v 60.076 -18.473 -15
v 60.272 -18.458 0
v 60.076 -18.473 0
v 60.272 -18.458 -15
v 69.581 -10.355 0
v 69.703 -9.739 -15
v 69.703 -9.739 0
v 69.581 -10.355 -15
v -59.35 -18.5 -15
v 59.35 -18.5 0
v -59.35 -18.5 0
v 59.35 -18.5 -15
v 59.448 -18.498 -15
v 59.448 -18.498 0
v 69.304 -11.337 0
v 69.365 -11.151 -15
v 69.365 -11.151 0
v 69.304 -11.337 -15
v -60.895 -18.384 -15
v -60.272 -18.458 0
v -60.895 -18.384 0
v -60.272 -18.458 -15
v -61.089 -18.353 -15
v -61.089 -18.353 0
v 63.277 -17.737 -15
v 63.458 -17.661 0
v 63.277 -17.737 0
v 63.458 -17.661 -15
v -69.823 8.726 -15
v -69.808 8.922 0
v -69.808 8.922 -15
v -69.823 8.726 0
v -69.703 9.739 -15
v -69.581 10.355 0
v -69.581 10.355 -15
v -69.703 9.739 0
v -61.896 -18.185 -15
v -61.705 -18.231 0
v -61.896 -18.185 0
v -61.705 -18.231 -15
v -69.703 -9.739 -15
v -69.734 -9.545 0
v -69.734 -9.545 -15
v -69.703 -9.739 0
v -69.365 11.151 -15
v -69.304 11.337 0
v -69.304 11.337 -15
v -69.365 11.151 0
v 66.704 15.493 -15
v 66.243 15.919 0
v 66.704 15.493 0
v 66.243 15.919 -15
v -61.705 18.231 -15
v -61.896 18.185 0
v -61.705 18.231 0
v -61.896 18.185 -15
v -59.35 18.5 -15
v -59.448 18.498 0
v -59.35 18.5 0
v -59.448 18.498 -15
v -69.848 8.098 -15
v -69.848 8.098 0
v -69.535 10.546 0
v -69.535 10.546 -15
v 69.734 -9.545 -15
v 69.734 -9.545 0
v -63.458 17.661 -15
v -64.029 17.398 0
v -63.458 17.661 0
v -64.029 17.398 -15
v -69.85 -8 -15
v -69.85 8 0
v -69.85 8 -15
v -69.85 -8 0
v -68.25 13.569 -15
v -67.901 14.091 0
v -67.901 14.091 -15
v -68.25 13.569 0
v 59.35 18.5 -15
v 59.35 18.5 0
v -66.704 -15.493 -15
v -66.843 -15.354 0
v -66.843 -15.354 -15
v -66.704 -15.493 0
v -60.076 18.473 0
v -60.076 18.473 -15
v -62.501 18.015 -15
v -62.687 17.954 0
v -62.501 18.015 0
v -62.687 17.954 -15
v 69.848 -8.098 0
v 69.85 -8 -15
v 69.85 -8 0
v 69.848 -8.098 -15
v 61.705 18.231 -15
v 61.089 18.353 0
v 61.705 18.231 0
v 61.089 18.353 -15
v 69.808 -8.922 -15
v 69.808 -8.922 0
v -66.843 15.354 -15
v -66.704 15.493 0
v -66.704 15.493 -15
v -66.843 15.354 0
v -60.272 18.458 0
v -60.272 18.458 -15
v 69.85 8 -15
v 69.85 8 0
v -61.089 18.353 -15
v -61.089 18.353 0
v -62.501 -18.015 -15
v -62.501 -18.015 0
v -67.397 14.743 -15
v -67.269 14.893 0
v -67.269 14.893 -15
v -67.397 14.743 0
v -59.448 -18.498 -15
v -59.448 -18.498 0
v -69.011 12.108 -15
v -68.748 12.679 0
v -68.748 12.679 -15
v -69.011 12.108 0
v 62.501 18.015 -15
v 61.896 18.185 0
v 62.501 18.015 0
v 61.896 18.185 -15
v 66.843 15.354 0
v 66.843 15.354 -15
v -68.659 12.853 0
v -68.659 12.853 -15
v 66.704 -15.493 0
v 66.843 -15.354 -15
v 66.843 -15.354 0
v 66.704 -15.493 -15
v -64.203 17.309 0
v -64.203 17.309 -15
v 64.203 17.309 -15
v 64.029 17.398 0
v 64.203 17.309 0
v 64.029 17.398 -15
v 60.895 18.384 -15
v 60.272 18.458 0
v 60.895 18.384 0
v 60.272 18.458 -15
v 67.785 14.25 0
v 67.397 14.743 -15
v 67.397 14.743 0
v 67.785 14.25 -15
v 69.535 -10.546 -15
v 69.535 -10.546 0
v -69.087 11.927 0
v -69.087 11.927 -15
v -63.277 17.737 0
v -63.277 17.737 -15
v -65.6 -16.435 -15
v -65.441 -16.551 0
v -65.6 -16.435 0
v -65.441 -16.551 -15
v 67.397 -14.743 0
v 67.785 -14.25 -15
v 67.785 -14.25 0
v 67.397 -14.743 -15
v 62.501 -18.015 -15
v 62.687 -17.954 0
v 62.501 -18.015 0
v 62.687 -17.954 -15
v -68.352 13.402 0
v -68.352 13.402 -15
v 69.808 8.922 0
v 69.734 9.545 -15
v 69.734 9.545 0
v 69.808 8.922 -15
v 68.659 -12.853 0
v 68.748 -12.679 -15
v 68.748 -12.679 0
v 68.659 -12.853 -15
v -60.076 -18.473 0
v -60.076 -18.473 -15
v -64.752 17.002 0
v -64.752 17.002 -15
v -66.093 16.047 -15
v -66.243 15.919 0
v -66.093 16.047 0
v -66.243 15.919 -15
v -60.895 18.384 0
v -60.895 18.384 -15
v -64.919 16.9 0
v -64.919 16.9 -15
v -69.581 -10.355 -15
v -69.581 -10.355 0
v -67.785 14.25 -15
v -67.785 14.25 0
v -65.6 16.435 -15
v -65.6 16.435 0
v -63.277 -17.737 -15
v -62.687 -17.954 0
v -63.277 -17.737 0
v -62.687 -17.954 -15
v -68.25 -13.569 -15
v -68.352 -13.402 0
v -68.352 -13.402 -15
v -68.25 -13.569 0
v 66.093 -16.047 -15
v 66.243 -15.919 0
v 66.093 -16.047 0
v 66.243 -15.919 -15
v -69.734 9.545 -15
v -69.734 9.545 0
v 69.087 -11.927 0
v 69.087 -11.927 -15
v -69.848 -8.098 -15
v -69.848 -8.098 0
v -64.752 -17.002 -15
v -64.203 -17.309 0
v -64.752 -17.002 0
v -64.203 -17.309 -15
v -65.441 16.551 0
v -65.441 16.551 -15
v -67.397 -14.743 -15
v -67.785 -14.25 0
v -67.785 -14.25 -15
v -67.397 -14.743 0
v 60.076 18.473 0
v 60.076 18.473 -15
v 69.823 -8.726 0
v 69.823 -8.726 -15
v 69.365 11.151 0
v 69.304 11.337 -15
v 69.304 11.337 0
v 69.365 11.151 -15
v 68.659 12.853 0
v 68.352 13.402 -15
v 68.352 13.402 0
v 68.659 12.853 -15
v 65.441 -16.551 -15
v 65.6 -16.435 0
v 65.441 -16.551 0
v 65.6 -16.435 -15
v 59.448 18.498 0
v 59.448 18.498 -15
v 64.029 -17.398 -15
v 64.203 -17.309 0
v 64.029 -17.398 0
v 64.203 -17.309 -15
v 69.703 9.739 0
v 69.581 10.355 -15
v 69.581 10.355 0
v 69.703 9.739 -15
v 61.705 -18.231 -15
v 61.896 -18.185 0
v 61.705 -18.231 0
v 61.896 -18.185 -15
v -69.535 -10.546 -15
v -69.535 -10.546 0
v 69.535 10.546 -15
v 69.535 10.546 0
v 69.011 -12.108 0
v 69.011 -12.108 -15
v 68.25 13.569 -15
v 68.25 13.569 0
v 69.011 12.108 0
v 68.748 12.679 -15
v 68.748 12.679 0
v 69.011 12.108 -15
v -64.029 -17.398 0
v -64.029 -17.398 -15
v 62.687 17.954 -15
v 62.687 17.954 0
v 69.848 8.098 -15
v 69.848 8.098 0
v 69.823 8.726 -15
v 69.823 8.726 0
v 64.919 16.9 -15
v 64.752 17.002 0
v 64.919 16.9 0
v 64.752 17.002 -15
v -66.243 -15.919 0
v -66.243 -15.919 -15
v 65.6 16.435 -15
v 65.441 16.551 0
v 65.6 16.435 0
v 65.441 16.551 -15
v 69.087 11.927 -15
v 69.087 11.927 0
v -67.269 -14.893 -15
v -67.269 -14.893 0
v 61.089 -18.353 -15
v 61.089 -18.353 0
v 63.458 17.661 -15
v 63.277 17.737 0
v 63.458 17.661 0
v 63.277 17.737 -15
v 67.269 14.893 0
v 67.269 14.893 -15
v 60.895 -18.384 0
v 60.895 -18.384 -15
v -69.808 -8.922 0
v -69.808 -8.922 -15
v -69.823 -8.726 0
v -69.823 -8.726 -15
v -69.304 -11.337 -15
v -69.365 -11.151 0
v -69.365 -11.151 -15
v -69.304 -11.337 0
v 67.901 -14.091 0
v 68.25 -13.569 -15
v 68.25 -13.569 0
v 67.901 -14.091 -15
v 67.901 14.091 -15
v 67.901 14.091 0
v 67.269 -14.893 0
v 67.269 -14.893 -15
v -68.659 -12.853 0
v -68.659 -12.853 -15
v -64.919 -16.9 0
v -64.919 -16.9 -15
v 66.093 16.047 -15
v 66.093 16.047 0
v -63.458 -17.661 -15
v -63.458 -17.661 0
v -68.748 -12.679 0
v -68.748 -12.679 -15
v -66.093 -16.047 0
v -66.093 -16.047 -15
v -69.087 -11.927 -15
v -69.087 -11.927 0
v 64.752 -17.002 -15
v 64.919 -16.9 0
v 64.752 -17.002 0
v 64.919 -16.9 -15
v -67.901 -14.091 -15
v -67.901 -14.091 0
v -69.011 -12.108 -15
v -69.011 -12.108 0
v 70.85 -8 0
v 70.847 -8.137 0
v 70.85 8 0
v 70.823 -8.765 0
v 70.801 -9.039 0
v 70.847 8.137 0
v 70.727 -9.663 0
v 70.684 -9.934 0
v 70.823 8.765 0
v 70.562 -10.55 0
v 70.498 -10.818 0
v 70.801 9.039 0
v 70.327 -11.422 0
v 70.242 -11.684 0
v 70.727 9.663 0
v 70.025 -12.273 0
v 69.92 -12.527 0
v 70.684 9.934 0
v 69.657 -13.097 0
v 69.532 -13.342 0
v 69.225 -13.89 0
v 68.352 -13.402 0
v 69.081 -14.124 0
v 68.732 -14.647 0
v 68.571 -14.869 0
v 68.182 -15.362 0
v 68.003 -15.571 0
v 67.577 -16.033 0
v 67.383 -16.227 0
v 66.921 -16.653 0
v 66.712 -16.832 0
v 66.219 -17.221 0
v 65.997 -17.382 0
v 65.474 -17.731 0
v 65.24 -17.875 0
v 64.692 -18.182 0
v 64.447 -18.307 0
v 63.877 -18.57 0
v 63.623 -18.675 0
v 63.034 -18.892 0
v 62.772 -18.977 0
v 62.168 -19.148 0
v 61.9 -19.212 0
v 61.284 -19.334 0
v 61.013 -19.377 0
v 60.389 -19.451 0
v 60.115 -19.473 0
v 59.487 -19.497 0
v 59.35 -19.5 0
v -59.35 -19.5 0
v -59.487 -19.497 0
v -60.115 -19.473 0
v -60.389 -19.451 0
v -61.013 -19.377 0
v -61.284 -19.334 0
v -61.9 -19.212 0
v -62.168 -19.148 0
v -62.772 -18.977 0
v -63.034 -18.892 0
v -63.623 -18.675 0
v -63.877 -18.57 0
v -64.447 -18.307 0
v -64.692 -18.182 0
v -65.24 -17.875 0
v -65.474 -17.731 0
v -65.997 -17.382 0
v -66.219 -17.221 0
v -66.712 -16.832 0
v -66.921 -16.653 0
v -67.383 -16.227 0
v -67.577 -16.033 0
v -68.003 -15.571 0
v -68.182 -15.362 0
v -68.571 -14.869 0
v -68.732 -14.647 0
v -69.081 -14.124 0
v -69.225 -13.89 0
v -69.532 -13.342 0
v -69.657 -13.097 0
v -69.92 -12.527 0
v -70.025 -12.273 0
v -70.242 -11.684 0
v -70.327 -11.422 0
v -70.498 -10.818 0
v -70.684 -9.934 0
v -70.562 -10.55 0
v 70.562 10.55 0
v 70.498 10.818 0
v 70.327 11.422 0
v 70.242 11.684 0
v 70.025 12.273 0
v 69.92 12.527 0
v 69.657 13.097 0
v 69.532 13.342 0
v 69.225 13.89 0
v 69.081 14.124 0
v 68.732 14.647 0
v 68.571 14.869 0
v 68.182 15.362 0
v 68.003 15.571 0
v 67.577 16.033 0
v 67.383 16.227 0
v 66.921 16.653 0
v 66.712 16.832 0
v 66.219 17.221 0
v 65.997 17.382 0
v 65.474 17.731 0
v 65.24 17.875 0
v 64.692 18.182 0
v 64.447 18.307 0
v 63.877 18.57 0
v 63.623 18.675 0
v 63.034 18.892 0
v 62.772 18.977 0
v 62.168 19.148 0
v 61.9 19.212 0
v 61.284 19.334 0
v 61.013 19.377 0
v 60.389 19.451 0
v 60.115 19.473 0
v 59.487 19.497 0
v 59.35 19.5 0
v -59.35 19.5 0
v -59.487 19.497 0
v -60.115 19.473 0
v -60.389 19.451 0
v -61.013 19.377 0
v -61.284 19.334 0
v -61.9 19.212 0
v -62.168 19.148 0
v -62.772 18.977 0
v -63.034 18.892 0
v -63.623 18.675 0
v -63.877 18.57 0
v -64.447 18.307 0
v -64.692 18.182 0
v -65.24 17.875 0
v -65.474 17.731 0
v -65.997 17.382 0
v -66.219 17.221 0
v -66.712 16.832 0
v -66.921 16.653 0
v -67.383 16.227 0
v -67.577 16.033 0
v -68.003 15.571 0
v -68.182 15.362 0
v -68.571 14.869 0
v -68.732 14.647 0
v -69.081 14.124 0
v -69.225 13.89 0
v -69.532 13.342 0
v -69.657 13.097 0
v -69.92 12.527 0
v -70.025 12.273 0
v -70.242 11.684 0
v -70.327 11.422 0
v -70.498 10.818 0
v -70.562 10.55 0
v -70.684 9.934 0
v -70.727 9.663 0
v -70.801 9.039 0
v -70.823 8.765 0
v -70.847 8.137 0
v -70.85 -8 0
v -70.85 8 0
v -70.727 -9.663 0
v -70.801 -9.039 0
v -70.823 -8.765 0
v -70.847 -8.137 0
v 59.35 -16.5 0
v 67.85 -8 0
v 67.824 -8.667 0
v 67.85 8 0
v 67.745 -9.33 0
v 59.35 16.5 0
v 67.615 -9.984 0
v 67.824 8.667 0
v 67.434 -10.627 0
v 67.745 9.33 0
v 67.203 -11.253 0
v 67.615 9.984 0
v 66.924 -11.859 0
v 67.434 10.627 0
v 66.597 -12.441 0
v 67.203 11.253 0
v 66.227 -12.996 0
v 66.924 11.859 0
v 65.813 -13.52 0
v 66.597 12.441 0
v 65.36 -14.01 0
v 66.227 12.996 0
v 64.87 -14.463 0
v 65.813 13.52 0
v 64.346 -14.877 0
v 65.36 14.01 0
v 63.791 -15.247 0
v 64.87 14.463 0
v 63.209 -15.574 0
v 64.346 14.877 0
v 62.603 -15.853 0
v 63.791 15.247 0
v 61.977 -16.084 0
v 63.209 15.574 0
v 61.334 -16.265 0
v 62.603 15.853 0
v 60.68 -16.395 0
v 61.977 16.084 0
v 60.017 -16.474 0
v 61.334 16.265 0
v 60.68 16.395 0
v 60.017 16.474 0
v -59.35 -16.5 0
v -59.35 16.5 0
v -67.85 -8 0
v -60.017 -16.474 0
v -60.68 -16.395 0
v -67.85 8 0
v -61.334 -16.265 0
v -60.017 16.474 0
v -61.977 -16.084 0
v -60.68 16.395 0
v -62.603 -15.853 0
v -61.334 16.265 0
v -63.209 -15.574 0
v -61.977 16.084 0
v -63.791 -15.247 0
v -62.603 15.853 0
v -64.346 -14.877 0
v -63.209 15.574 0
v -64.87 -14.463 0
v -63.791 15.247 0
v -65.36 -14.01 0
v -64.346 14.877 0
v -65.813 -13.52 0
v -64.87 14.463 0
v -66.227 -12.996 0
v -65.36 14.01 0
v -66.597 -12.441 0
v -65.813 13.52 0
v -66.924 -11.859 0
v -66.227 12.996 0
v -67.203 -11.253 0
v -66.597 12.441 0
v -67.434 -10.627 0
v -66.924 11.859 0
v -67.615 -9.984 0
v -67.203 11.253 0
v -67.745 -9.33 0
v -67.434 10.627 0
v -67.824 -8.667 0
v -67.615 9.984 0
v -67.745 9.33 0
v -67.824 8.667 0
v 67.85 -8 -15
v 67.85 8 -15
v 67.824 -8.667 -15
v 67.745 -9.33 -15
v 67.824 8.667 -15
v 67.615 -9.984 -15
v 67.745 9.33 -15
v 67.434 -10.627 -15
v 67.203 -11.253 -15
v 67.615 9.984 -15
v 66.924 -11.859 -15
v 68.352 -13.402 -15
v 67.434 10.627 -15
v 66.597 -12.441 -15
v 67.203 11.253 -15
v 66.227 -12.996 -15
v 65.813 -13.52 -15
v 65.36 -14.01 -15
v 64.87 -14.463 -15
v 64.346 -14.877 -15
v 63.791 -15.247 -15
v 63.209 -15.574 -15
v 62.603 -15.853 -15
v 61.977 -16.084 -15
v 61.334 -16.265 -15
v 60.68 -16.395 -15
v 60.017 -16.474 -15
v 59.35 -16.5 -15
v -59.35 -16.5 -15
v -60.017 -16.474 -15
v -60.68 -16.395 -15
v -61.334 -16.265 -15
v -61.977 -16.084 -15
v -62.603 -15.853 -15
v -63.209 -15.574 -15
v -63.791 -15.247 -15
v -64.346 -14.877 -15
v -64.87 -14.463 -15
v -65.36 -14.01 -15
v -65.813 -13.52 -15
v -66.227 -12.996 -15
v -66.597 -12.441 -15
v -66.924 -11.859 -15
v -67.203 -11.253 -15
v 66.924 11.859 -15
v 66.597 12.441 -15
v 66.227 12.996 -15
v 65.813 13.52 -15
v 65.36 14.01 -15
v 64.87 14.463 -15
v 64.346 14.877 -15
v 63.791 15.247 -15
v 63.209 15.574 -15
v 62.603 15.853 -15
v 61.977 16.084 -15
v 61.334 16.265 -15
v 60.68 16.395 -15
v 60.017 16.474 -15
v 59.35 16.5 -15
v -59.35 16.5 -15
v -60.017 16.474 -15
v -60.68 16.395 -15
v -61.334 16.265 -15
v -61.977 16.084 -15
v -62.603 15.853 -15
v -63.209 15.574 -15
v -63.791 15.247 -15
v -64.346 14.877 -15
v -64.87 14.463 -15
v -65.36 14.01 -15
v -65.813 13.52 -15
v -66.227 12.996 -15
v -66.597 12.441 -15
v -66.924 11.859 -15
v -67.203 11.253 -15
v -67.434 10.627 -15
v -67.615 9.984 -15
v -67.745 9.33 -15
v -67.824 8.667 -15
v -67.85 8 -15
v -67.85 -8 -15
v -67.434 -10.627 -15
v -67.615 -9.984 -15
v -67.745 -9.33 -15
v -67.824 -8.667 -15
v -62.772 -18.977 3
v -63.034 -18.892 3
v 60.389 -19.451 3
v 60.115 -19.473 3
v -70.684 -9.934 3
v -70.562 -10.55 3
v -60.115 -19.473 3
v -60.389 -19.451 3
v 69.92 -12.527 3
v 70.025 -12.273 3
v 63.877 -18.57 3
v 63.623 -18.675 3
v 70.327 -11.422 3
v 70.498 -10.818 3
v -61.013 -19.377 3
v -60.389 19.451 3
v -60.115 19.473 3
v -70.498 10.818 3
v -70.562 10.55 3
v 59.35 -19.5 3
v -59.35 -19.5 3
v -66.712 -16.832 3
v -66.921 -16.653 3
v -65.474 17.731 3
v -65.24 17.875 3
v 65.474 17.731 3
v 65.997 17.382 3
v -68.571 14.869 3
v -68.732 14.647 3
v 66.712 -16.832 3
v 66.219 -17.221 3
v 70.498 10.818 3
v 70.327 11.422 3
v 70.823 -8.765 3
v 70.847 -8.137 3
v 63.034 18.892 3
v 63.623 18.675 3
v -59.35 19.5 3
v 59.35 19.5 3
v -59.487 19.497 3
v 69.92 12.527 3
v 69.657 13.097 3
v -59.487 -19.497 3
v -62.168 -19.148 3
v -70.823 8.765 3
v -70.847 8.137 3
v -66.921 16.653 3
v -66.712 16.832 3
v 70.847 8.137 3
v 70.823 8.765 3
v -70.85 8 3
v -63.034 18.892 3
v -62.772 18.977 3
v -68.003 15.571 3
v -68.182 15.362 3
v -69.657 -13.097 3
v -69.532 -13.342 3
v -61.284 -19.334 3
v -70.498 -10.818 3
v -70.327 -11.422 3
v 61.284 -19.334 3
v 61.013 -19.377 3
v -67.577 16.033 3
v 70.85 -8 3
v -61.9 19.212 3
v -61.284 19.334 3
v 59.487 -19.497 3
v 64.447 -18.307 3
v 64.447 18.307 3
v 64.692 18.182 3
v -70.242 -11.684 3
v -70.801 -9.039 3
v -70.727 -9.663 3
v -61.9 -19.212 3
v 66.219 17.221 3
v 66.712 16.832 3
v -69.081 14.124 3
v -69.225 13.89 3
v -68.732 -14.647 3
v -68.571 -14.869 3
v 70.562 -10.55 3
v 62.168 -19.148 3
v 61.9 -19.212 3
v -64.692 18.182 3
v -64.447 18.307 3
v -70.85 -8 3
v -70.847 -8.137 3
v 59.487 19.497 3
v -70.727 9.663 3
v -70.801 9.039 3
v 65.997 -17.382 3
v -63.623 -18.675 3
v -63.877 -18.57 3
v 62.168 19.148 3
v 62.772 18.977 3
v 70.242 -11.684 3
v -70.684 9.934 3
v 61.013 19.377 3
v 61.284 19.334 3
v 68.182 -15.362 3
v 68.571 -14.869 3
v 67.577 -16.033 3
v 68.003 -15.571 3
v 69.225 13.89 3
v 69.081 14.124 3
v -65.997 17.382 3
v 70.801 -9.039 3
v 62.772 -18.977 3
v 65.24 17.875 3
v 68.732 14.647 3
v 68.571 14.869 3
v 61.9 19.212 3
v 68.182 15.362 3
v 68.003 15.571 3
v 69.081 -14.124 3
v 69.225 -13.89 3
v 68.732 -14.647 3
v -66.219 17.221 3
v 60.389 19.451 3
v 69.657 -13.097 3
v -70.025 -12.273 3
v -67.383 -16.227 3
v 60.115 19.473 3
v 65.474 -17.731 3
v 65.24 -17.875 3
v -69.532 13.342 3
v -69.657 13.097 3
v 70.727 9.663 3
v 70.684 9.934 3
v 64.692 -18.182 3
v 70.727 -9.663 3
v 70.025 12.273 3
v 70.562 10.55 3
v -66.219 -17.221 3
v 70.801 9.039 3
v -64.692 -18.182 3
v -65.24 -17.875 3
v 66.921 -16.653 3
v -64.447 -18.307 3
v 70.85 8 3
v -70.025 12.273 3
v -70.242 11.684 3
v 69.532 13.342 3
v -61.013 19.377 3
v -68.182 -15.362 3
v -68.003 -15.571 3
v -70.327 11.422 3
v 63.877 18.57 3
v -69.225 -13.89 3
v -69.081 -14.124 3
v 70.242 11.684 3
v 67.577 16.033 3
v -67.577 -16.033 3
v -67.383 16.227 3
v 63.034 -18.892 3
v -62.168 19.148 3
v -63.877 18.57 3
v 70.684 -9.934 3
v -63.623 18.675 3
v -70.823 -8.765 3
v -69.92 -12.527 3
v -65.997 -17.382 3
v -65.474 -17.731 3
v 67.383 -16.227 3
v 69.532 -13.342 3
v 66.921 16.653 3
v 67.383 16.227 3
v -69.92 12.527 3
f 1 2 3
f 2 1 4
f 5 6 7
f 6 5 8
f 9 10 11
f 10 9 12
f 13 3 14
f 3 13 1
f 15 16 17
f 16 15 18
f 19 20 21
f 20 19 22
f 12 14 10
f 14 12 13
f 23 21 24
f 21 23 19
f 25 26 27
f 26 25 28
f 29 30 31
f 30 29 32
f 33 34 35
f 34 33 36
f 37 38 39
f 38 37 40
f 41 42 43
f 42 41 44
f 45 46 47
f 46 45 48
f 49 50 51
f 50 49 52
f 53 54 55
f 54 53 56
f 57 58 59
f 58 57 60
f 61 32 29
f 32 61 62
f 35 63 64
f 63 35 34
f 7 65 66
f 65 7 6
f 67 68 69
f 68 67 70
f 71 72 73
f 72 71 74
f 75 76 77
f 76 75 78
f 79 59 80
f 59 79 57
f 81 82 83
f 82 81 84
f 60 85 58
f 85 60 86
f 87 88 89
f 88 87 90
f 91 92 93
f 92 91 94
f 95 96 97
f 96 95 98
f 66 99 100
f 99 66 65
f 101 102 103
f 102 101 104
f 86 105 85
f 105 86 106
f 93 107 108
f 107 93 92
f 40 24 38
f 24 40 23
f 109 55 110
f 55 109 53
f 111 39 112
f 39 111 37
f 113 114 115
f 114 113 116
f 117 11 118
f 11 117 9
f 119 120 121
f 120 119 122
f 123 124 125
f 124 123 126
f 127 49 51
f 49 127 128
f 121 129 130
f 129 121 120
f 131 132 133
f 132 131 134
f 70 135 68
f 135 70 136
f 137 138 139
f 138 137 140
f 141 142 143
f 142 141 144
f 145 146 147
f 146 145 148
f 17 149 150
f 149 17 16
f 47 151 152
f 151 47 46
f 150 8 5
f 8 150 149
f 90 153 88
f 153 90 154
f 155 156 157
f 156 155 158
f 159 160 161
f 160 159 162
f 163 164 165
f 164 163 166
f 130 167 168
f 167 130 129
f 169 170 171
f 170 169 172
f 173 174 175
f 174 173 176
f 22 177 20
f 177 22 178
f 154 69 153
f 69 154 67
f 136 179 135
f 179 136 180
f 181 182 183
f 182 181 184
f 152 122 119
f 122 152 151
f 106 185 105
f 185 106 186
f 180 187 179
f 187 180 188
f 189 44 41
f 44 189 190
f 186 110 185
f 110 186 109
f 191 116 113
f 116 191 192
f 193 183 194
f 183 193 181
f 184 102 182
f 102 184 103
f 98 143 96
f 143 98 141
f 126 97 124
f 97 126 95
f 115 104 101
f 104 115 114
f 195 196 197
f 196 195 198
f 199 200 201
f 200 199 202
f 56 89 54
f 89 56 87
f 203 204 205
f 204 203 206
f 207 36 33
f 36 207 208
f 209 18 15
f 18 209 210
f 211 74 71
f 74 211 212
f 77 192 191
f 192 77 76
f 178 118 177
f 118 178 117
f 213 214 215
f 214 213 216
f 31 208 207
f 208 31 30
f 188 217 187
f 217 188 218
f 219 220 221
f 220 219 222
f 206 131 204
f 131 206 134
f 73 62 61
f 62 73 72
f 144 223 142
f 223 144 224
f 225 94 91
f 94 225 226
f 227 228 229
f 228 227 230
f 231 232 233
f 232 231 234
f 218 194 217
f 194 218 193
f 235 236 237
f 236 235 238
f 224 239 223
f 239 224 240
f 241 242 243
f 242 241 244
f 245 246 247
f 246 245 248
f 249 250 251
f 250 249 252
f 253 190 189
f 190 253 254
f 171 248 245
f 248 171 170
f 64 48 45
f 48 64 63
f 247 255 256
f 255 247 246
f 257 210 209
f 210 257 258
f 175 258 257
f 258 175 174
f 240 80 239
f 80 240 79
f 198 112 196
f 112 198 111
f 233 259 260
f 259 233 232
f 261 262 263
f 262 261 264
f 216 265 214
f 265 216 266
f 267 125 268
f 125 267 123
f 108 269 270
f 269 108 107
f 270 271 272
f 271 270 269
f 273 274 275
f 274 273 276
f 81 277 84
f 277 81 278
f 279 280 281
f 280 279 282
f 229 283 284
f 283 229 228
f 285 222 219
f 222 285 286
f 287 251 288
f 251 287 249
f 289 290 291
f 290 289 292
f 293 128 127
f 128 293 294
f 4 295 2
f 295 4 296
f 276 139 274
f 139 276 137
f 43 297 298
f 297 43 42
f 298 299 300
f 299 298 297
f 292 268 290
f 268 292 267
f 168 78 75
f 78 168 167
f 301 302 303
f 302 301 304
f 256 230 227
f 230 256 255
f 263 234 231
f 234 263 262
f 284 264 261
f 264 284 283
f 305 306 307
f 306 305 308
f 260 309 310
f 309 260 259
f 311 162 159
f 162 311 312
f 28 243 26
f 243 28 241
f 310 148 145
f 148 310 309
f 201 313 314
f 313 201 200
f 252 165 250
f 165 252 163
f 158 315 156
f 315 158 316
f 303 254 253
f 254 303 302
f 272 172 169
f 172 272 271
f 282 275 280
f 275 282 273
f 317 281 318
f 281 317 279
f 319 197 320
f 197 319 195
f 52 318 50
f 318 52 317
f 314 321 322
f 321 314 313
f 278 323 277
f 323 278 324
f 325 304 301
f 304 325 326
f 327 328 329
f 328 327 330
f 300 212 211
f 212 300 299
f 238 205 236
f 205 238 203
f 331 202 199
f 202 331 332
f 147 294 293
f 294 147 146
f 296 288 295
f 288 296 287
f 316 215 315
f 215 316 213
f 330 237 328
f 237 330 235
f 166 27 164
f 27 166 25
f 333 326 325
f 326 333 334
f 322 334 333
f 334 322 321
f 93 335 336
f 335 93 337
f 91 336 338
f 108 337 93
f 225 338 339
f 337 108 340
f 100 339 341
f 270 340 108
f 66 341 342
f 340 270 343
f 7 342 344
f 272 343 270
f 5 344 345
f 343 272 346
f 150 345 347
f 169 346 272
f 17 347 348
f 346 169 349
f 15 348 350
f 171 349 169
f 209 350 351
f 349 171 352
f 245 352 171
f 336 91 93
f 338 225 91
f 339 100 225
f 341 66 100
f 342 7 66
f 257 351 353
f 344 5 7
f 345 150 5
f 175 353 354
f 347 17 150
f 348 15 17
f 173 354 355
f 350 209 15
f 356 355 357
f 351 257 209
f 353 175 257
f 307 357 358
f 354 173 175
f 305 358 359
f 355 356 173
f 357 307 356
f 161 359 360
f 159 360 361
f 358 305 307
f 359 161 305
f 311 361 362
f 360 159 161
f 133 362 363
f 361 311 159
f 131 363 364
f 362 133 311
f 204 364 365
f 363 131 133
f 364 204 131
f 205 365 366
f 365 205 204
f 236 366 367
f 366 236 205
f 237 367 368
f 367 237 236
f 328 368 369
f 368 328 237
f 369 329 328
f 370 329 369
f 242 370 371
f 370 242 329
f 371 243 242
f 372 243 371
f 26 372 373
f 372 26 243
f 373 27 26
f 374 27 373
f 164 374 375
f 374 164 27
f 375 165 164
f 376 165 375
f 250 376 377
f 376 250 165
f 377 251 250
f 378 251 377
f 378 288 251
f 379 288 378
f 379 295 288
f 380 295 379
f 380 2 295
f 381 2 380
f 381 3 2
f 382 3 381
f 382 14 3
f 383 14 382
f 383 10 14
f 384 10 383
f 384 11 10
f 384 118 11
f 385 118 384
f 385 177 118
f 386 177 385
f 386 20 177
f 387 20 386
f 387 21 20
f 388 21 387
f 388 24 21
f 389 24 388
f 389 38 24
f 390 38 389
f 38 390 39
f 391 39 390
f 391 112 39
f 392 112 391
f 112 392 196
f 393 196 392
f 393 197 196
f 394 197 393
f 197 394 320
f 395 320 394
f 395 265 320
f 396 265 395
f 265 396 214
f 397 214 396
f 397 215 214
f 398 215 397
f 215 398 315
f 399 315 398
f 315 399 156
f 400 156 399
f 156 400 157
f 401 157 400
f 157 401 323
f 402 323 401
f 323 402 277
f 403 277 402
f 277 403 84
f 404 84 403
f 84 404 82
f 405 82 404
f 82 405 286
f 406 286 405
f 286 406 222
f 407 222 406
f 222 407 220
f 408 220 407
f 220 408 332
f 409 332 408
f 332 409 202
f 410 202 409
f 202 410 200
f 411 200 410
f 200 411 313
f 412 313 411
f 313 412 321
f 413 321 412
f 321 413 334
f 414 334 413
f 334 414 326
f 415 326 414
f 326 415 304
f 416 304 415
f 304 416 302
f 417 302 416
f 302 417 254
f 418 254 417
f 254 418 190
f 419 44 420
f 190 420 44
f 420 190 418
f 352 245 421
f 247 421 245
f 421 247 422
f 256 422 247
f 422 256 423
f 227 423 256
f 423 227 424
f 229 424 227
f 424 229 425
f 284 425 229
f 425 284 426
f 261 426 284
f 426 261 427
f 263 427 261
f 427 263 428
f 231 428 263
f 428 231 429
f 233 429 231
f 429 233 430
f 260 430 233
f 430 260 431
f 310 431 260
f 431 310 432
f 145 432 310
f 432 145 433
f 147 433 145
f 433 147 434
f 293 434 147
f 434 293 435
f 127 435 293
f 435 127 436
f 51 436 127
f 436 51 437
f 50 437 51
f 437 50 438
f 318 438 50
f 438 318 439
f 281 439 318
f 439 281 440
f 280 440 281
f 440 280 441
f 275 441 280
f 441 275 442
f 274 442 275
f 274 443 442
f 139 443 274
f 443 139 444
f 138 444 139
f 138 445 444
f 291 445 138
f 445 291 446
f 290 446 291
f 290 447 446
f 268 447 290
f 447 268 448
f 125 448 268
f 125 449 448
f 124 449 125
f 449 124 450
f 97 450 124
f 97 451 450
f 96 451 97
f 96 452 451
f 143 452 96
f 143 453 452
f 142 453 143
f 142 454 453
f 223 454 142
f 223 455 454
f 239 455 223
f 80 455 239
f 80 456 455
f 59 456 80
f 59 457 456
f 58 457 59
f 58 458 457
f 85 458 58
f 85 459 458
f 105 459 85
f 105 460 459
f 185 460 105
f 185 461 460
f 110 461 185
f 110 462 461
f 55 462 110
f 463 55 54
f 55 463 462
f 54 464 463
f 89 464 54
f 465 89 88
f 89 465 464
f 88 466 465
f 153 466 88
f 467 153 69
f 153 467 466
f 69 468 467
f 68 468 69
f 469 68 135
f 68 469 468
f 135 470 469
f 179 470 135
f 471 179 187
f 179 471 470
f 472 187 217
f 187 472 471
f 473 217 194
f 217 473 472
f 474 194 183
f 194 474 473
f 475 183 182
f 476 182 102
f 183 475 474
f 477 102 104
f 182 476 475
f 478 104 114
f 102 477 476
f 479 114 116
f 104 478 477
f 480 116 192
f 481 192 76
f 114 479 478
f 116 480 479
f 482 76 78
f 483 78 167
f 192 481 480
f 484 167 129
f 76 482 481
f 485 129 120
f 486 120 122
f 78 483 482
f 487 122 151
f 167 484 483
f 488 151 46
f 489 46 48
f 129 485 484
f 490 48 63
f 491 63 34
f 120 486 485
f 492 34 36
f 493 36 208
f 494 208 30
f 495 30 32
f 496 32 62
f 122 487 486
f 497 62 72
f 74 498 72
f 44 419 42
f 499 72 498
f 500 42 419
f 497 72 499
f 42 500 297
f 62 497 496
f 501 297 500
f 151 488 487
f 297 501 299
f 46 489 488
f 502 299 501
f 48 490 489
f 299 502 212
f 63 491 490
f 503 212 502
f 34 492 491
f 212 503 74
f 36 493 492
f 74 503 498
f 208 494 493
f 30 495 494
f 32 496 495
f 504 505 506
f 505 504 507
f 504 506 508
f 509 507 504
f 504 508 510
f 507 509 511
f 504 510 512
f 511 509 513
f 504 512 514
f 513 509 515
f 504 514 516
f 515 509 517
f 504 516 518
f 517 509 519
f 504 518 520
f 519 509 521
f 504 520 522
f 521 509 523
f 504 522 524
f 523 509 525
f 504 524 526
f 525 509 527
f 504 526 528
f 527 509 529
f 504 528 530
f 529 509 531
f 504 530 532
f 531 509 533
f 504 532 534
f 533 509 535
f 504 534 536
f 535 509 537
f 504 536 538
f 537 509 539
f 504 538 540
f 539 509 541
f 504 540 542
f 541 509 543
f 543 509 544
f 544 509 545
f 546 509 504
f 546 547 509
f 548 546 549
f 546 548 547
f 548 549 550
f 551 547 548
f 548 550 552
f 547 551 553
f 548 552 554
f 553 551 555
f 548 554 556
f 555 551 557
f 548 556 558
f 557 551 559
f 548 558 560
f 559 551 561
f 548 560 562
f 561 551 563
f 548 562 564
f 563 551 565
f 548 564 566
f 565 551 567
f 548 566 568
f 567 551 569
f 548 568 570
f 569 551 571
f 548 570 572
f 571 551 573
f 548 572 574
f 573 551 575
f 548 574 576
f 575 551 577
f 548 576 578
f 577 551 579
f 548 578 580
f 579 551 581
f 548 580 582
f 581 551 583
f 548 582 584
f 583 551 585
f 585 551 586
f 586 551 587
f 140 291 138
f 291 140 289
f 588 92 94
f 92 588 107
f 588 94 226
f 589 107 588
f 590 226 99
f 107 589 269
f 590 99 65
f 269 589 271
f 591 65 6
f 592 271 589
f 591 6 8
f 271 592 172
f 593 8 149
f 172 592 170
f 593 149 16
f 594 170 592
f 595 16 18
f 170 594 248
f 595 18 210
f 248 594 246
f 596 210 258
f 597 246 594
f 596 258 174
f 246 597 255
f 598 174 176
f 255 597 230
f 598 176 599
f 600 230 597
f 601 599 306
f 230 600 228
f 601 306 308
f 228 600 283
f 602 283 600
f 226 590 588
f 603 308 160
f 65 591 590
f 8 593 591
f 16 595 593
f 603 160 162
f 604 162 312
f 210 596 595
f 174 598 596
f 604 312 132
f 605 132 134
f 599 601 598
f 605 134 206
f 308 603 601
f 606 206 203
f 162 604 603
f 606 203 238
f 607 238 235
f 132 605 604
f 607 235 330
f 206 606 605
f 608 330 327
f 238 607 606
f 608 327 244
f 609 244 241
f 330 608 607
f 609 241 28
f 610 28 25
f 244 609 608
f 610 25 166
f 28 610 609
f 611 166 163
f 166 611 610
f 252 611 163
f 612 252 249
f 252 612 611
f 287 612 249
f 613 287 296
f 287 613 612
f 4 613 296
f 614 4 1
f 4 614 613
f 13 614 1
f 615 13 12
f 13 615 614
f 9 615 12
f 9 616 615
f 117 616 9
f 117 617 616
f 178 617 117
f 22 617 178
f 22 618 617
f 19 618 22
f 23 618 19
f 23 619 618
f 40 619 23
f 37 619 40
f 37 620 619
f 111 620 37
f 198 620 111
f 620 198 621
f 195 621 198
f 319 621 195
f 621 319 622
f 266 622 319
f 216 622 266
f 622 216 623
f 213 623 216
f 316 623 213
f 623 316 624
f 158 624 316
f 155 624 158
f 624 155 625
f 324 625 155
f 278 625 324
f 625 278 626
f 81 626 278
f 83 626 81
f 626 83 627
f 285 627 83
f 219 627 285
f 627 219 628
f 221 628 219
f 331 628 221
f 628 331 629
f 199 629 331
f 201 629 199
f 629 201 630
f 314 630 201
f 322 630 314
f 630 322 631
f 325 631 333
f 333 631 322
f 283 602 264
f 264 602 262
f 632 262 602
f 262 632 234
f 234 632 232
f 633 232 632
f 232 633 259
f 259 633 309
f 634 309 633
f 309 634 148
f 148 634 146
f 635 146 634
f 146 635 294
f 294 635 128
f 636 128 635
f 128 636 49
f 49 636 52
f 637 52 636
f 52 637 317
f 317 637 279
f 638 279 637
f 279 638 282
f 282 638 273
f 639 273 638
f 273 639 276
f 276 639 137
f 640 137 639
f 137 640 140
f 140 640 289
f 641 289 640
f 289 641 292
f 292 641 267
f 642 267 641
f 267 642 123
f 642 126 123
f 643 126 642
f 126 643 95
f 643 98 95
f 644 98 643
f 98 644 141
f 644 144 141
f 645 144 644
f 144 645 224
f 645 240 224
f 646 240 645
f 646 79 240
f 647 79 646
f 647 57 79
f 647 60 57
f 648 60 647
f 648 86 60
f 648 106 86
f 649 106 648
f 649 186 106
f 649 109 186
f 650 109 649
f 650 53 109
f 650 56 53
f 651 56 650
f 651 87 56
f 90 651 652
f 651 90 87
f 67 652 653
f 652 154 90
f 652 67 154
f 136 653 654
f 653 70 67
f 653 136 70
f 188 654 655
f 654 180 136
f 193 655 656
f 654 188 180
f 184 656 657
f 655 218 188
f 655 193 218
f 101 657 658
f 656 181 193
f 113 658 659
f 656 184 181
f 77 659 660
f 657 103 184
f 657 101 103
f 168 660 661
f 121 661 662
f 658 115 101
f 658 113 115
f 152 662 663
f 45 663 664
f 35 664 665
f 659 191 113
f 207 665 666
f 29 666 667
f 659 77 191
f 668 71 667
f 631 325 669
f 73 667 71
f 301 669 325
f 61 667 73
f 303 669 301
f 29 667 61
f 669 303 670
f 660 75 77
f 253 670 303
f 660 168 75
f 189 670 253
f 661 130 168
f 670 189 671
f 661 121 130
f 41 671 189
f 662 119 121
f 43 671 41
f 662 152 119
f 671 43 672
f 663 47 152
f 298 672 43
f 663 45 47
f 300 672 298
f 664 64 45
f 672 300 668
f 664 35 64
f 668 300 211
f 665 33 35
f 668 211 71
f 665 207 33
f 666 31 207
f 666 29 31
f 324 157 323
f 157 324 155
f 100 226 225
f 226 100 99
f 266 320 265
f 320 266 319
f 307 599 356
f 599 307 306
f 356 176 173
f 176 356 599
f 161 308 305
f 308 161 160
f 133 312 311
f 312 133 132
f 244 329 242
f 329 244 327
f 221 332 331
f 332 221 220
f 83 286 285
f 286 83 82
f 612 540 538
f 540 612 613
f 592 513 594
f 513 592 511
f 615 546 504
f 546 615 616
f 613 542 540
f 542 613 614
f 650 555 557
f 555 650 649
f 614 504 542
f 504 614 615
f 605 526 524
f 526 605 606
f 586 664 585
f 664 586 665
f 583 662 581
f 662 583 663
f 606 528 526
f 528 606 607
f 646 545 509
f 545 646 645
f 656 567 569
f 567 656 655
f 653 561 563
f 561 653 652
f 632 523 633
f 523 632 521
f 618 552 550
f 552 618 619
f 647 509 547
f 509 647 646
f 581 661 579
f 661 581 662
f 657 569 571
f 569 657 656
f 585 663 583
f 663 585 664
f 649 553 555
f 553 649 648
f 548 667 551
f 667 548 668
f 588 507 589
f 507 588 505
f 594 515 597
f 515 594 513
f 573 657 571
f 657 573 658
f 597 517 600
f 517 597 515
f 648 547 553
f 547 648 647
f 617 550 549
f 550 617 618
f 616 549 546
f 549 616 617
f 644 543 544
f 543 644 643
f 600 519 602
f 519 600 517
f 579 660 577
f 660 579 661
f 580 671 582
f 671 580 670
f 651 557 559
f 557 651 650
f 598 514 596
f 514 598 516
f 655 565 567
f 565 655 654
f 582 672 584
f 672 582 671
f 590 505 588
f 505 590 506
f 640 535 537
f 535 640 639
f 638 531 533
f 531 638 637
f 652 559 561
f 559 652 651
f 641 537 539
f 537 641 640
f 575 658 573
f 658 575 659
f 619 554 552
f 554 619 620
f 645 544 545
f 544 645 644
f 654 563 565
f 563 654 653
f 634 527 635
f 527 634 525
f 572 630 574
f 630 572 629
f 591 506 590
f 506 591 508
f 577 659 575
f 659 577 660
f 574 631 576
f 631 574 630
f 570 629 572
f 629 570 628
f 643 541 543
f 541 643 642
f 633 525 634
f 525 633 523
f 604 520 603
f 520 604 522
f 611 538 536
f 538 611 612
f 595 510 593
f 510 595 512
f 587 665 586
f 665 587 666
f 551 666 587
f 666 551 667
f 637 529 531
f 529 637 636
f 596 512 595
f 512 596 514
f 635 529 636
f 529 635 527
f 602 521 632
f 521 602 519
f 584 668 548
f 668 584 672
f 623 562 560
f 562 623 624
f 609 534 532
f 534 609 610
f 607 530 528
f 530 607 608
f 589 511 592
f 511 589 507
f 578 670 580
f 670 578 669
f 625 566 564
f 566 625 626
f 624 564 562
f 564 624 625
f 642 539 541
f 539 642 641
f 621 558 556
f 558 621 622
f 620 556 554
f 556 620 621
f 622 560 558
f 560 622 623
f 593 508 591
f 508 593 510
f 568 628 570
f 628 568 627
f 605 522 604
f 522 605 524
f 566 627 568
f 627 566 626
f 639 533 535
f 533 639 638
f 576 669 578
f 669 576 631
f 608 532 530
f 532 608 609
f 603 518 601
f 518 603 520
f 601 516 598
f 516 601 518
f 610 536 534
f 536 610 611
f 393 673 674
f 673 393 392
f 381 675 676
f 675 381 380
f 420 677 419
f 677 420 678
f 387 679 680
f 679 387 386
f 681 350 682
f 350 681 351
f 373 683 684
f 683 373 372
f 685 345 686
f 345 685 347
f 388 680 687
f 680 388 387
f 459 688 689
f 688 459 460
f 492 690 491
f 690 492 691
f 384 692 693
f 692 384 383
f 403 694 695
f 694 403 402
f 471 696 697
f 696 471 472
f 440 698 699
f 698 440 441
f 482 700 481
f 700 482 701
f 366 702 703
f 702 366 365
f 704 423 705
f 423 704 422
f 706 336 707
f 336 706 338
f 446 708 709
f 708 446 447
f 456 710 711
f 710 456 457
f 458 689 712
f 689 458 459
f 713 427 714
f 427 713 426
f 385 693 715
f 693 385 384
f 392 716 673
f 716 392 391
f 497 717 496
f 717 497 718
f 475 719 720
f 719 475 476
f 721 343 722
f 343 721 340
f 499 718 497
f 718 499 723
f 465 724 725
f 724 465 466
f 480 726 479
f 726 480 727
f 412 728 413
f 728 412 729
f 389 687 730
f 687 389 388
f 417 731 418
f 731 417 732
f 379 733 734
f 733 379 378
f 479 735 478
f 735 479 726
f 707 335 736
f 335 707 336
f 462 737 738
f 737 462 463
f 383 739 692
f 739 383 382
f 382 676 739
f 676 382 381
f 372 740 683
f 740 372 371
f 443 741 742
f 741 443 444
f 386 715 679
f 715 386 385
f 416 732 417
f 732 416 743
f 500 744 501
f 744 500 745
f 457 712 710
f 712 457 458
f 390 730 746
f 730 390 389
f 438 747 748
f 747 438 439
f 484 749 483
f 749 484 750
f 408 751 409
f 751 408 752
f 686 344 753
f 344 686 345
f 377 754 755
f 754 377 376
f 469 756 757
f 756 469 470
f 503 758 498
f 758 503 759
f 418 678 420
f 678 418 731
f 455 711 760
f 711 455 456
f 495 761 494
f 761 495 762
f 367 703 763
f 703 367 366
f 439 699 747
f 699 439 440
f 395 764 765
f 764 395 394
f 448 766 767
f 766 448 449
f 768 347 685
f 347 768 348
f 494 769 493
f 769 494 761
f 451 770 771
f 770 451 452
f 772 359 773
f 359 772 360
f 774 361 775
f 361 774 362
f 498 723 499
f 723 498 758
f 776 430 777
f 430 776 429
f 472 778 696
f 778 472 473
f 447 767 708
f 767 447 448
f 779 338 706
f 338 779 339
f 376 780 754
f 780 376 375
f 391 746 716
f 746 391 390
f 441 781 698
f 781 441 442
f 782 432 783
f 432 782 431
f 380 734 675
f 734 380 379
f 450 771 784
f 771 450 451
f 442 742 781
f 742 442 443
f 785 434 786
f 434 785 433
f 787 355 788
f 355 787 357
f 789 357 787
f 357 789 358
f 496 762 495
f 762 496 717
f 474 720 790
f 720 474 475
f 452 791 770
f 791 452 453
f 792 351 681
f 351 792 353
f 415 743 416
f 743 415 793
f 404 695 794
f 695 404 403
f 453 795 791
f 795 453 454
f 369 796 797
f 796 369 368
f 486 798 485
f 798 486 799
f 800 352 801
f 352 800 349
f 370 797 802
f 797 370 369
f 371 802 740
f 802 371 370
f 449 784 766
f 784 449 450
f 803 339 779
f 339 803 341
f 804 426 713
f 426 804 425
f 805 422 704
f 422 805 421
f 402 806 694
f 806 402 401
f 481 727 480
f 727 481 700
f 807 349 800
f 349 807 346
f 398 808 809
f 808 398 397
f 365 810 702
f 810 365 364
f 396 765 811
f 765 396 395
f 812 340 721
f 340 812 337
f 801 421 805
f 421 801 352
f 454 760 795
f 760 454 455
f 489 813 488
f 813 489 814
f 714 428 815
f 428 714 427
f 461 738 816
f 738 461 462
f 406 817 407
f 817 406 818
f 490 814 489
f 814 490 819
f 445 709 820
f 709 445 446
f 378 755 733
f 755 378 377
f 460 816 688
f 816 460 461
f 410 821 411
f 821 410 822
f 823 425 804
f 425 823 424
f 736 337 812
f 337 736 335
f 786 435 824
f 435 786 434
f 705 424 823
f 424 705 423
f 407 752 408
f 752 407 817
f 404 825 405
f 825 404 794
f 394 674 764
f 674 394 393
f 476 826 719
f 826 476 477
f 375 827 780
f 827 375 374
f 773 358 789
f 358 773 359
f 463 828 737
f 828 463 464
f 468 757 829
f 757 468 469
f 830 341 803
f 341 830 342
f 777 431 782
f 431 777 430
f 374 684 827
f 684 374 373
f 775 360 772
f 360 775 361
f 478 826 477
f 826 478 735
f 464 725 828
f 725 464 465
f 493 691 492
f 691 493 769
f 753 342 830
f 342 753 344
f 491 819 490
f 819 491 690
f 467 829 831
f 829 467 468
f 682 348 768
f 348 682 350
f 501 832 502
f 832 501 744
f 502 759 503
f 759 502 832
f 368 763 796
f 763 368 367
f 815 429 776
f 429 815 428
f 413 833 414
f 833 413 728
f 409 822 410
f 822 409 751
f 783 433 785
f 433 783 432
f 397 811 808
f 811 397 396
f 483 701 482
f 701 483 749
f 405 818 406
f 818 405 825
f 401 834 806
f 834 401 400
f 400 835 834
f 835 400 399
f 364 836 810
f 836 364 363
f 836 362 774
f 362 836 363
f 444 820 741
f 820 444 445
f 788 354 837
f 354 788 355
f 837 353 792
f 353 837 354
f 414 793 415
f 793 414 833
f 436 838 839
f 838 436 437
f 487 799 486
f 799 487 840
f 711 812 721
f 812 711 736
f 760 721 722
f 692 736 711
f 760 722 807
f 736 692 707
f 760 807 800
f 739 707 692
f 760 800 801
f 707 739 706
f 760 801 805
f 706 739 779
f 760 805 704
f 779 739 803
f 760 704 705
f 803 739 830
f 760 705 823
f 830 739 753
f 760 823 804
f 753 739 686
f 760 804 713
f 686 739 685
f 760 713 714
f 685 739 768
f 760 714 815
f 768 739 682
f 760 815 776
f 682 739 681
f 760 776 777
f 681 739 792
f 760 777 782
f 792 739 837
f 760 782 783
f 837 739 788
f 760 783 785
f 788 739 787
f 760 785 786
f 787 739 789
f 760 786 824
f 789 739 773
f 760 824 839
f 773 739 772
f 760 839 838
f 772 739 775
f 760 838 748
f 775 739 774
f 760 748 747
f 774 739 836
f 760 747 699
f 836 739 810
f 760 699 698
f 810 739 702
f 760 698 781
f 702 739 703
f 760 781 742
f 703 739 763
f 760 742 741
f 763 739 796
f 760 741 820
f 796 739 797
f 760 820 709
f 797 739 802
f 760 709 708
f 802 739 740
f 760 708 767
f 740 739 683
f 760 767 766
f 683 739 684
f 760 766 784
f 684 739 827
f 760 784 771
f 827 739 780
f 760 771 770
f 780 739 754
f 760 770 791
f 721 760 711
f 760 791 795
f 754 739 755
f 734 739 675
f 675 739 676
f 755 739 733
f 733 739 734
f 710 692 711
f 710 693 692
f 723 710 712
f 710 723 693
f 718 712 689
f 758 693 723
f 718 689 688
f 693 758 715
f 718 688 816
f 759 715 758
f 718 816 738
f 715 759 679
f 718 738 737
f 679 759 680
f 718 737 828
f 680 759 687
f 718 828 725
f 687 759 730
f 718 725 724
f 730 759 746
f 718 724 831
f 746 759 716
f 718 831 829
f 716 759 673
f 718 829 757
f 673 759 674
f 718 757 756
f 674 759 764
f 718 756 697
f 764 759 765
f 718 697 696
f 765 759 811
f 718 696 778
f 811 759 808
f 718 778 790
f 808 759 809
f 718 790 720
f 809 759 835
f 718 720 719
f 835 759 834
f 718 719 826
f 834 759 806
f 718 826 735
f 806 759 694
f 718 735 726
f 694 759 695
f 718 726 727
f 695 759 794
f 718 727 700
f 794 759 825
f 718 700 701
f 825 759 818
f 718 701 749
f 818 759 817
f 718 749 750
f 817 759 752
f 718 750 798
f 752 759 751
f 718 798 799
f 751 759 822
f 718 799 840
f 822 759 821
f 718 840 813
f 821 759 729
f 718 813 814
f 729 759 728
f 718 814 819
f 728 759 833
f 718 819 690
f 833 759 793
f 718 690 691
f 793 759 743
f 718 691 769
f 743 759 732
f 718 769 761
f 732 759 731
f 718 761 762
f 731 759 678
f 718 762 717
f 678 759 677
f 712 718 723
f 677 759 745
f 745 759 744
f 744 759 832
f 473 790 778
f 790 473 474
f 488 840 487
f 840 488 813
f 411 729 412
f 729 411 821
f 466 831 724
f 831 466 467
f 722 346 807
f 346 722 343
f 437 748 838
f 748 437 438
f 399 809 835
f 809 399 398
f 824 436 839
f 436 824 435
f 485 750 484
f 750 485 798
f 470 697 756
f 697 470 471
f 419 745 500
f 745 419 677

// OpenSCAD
// TAPA_FINAL_CHIMENEA.scad
// Diseñada para cerrar el sistema modular y forzar el flujo de aire por las branquias.
$fn = 80;

// Medidas coincidentes con tubo.scad para un encastre perfecto
rect_x = 134.7; 
rect_y = 32;    
radio_final = 8;
grosor_pared = 2.0;
tolerancia = 0.5; 

tapa_chimenea();

module tapa_chimenea() {
    color("IndianRed")
    union() {
        // 1. PLACA SUPERIOR (El techo que sella el tubo)
        // La hacemos un poco más ancha para que sea fácil de agarrar
        linear_extrude(3) 
            offset(r = grosor_pared + tolerancia + 1) 
                perfil_rect(0);
        
        // 2. FALDA DE ENCASTRE (Hembra)
        // Esta parte abraza el conector macho superior del último tubo
        translate([0, 0, -15]) {
            difference() {
                // Exterior de la falda
                linear_extrude(15) 
                    offset(r = grosor_pared + tolerancia) 
                        perfil_rect(0);
                
                // Hueco interno (Hembra)
                // Usamos la misma lógica de tolerancia que en la base del tubo
                translate([0, 0, -1]) 
                    linear_extrude(17) 
                        perfil_rect(tolerancia);
            }
        }
    }
}

module perfil_rect(extra) {
    offset(r = radio_final + extra) 
        square([rect_x - 2*radio_final, rect_y - 2*radio_final], center = true);
}
